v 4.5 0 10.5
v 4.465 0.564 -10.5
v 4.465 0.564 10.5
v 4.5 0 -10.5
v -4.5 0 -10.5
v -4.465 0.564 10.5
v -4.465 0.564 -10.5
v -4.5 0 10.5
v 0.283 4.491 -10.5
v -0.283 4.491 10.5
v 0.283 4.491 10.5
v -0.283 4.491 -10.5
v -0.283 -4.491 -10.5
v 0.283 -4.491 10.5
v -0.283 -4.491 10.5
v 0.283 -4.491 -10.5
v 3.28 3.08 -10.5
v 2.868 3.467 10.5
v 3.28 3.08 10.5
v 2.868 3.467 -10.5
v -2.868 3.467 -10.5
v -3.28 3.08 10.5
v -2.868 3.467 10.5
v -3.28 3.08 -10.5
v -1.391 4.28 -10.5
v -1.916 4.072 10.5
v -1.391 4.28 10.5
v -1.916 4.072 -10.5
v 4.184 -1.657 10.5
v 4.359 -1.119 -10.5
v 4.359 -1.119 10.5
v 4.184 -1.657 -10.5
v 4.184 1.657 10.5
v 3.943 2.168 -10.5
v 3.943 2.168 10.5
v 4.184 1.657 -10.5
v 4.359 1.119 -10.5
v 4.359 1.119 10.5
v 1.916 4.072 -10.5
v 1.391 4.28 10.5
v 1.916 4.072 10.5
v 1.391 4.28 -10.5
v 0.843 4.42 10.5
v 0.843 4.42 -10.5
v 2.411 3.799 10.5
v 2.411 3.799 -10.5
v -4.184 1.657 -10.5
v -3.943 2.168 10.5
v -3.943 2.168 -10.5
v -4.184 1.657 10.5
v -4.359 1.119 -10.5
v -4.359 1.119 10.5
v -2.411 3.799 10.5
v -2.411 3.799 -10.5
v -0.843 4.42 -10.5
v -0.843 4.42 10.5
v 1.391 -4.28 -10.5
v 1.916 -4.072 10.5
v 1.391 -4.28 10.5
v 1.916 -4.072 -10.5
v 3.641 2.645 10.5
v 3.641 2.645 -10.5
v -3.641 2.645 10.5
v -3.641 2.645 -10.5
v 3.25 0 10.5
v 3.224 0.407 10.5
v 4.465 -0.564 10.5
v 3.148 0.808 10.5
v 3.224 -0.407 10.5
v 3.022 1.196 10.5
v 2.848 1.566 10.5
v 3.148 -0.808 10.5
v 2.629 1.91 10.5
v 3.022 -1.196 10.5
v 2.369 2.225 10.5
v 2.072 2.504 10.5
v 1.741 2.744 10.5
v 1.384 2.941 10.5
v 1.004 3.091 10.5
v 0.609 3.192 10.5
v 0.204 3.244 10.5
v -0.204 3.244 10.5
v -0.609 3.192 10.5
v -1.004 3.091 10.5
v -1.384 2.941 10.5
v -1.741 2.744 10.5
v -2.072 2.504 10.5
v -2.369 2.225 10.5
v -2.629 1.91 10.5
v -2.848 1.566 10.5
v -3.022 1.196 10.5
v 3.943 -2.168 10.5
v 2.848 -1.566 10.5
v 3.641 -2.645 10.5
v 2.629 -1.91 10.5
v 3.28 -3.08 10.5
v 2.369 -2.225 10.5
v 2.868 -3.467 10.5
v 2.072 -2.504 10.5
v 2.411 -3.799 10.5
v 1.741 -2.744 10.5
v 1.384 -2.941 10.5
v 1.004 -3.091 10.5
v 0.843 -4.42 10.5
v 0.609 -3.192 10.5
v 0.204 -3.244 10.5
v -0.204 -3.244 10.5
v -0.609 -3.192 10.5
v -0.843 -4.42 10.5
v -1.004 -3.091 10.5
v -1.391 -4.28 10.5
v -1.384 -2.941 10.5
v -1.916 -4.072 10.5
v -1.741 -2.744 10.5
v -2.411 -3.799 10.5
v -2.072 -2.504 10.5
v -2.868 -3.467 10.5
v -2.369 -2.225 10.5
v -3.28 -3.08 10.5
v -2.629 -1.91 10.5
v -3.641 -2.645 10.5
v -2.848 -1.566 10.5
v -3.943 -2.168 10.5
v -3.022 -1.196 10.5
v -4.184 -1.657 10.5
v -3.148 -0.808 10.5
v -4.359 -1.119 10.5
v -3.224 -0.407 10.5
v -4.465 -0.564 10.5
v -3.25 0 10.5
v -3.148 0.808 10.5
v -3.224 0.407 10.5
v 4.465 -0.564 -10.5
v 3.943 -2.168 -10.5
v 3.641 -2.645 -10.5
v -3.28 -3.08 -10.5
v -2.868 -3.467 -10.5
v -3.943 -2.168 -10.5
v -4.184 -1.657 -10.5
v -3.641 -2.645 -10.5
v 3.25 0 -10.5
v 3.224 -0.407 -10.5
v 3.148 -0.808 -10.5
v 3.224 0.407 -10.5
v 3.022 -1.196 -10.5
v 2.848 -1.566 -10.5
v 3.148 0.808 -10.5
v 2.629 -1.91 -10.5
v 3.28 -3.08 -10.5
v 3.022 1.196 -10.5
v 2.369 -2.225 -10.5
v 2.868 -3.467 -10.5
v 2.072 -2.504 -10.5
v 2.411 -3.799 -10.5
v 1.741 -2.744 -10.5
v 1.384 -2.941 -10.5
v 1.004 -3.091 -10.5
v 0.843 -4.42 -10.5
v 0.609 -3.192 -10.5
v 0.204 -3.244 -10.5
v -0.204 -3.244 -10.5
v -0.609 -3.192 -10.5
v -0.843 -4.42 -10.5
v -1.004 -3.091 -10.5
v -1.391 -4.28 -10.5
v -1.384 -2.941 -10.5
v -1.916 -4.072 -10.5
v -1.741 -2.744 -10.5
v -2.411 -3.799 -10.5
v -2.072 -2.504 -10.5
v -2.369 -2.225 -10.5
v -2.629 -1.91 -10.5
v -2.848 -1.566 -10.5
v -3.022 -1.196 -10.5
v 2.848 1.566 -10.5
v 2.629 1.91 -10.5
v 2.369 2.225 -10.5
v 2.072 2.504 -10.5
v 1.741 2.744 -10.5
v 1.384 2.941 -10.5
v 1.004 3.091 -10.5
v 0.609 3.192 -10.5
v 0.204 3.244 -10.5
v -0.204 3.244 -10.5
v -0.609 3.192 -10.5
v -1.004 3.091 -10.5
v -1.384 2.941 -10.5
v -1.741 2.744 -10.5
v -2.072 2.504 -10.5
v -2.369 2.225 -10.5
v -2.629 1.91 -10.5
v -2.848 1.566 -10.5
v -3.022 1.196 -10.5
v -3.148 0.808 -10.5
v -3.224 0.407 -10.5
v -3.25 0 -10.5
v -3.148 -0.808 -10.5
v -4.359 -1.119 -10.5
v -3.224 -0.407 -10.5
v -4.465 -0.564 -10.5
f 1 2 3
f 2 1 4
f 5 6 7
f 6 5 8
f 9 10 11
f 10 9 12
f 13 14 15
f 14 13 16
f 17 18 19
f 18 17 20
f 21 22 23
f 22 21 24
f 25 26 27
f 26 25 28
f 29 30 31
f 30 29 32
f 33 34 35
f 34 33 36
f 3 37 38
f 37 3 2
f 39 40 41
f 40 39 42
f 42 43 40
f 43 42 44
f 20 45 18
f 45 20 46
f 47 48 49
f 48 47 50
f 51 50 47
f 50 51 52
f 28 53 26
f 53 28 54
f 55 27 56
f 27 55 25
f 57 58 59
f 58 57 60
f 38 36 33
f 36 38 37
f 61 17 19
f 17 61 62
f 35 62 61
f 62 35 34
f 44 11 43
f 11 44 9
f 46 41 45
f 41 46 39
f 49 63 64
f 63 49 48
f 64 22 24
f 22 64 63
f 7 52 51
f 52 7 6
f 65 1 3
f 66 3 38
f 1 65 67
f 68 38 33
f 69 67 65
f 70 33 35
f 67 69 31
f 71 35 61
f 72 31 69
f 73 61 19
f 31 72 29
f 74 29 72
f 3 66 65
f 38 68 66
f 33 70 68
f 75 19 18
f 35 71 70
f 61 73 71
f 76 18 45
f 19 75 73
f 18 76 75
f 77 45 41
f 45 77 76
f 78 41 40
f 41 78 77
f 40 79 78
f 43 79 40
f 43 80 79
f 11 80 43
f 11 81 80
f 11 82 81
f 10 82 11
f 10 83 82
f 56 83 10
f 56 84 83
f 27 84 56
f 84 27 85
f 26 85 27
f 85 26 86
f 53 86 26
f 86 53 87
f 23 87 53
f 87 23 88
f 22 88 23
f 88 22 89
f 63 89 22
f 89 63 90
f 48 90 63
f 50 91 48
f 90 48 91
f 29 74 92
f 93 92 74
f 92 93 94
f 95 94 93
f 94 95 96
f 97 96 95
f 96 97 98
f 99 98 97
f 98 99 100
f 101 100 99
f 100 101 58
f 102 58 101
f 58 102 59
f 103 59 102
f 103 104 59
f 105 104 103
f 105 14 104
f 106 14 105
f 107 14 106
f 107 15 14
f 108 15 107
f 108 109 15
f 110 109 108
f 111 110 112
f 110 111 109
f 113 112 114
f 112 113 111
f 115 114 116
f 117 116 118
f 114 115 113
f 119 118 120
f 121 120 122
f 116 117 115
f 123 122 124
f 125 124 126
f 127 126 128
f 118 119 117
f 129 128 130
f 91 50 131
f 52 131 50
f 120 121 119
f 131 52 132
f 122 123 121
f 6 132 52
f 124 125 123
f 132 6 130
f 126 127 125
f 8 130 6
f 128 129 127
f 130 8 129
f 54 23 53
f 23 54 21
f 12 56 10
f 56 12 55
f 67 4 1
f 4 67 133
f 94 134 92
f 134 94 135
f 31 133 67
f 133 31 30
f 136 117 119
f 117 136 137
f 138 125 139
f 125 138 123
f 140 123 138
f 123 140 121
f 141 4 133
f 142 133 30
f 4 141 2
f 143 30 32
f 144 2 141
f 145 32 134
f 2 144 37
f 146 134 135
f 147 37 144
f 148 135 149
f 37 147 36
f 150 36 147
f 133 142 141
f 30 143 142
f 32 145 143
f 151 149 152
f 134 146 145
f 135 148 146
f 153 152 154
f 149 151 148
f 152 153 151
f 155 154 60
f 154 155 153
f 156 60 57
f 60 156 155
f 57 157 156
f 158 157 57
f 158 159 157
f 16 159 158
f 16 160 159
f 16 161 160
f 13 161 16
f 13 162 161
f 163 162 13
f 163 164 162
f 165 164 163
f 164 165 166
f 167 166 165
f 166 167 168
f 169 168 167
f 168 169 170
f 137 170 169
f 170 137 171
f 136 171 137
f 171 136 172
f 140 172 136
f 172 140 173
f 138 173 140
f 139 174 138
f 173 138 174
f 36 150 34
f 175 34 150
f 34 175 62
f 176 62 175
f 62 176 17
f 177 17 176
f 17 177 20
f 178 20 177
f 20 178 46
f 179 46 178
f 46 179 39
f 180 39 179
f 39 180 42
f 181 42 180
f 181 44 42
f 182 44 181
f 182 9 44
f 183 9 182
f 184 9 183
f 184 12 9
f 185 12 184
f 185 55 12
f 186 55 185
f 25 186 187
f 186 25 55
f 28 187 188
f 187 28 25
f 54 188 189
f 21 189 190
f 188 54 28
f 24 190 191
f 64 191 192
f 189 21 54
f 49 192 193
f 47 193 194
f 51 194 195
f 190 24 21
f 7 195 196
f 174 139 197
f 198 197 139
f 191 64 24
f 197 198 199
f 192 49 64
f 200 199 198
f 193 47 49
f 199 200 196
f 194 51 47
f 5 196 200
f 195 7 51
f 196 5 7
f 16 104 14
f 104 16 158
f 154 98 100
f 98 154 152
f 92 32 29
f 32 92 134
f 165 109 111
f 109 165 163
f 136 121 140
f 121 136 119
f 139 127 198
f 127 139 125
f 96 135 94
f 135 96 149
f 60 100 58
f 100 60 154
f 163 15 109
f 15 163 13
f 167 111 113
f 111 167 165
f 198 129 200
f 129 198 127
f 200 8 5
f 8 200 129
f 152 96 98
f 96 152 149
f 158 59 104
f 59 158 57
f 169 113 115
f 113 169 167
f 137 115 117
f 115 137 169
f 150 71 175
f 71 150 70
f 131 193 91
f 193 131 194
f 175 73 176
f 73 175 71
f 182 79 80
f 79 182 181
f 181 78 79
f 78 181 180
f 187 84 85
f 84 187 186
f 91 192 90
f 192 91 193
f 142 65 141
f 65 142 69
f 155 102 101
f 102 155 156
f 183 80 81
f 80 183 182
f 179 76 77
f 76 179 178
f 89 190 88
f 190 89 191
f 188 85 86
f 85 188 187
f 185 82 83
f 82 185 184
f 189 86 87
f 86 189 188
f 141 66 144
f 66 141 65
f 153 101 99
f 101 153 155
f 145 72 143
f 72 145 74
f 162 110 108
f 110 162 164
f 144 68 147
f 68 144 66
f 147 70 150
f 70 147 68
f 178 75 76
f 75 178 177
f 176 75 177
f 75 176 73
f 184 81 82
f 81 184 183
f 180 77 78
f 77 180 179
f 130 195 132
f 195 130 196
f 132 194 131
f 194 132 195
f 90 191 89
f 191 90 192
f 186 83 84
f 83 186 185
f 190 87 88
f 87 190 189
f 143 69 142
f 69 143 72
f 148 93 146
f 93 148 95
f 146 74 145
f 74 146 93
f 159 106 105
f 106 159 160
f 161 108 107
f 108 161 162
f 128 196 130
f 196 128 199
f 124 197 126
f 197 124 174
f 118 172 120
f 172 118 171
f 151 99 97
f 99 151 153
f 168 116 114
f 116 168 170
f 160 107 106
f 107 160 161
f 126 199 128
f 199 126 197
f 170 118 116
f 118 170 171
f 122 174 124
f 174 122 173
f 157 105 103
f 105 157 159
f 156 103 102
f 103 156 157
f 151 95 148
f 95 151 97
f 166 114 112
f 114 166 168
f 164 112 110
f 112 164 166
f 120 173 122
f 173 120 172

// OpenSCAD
$fn = 50;


difference() {
	union() {
		translate(v = [0, 0, -10.5000000000]) {
			cylinder(h = 21, r = 4.5000000000);
		}
	}
	union() {
		translate(v = [0, 0, -100.0000000000]) {
			cylinder(h = 200, r = 3.2500000000);
		}
	}
}
